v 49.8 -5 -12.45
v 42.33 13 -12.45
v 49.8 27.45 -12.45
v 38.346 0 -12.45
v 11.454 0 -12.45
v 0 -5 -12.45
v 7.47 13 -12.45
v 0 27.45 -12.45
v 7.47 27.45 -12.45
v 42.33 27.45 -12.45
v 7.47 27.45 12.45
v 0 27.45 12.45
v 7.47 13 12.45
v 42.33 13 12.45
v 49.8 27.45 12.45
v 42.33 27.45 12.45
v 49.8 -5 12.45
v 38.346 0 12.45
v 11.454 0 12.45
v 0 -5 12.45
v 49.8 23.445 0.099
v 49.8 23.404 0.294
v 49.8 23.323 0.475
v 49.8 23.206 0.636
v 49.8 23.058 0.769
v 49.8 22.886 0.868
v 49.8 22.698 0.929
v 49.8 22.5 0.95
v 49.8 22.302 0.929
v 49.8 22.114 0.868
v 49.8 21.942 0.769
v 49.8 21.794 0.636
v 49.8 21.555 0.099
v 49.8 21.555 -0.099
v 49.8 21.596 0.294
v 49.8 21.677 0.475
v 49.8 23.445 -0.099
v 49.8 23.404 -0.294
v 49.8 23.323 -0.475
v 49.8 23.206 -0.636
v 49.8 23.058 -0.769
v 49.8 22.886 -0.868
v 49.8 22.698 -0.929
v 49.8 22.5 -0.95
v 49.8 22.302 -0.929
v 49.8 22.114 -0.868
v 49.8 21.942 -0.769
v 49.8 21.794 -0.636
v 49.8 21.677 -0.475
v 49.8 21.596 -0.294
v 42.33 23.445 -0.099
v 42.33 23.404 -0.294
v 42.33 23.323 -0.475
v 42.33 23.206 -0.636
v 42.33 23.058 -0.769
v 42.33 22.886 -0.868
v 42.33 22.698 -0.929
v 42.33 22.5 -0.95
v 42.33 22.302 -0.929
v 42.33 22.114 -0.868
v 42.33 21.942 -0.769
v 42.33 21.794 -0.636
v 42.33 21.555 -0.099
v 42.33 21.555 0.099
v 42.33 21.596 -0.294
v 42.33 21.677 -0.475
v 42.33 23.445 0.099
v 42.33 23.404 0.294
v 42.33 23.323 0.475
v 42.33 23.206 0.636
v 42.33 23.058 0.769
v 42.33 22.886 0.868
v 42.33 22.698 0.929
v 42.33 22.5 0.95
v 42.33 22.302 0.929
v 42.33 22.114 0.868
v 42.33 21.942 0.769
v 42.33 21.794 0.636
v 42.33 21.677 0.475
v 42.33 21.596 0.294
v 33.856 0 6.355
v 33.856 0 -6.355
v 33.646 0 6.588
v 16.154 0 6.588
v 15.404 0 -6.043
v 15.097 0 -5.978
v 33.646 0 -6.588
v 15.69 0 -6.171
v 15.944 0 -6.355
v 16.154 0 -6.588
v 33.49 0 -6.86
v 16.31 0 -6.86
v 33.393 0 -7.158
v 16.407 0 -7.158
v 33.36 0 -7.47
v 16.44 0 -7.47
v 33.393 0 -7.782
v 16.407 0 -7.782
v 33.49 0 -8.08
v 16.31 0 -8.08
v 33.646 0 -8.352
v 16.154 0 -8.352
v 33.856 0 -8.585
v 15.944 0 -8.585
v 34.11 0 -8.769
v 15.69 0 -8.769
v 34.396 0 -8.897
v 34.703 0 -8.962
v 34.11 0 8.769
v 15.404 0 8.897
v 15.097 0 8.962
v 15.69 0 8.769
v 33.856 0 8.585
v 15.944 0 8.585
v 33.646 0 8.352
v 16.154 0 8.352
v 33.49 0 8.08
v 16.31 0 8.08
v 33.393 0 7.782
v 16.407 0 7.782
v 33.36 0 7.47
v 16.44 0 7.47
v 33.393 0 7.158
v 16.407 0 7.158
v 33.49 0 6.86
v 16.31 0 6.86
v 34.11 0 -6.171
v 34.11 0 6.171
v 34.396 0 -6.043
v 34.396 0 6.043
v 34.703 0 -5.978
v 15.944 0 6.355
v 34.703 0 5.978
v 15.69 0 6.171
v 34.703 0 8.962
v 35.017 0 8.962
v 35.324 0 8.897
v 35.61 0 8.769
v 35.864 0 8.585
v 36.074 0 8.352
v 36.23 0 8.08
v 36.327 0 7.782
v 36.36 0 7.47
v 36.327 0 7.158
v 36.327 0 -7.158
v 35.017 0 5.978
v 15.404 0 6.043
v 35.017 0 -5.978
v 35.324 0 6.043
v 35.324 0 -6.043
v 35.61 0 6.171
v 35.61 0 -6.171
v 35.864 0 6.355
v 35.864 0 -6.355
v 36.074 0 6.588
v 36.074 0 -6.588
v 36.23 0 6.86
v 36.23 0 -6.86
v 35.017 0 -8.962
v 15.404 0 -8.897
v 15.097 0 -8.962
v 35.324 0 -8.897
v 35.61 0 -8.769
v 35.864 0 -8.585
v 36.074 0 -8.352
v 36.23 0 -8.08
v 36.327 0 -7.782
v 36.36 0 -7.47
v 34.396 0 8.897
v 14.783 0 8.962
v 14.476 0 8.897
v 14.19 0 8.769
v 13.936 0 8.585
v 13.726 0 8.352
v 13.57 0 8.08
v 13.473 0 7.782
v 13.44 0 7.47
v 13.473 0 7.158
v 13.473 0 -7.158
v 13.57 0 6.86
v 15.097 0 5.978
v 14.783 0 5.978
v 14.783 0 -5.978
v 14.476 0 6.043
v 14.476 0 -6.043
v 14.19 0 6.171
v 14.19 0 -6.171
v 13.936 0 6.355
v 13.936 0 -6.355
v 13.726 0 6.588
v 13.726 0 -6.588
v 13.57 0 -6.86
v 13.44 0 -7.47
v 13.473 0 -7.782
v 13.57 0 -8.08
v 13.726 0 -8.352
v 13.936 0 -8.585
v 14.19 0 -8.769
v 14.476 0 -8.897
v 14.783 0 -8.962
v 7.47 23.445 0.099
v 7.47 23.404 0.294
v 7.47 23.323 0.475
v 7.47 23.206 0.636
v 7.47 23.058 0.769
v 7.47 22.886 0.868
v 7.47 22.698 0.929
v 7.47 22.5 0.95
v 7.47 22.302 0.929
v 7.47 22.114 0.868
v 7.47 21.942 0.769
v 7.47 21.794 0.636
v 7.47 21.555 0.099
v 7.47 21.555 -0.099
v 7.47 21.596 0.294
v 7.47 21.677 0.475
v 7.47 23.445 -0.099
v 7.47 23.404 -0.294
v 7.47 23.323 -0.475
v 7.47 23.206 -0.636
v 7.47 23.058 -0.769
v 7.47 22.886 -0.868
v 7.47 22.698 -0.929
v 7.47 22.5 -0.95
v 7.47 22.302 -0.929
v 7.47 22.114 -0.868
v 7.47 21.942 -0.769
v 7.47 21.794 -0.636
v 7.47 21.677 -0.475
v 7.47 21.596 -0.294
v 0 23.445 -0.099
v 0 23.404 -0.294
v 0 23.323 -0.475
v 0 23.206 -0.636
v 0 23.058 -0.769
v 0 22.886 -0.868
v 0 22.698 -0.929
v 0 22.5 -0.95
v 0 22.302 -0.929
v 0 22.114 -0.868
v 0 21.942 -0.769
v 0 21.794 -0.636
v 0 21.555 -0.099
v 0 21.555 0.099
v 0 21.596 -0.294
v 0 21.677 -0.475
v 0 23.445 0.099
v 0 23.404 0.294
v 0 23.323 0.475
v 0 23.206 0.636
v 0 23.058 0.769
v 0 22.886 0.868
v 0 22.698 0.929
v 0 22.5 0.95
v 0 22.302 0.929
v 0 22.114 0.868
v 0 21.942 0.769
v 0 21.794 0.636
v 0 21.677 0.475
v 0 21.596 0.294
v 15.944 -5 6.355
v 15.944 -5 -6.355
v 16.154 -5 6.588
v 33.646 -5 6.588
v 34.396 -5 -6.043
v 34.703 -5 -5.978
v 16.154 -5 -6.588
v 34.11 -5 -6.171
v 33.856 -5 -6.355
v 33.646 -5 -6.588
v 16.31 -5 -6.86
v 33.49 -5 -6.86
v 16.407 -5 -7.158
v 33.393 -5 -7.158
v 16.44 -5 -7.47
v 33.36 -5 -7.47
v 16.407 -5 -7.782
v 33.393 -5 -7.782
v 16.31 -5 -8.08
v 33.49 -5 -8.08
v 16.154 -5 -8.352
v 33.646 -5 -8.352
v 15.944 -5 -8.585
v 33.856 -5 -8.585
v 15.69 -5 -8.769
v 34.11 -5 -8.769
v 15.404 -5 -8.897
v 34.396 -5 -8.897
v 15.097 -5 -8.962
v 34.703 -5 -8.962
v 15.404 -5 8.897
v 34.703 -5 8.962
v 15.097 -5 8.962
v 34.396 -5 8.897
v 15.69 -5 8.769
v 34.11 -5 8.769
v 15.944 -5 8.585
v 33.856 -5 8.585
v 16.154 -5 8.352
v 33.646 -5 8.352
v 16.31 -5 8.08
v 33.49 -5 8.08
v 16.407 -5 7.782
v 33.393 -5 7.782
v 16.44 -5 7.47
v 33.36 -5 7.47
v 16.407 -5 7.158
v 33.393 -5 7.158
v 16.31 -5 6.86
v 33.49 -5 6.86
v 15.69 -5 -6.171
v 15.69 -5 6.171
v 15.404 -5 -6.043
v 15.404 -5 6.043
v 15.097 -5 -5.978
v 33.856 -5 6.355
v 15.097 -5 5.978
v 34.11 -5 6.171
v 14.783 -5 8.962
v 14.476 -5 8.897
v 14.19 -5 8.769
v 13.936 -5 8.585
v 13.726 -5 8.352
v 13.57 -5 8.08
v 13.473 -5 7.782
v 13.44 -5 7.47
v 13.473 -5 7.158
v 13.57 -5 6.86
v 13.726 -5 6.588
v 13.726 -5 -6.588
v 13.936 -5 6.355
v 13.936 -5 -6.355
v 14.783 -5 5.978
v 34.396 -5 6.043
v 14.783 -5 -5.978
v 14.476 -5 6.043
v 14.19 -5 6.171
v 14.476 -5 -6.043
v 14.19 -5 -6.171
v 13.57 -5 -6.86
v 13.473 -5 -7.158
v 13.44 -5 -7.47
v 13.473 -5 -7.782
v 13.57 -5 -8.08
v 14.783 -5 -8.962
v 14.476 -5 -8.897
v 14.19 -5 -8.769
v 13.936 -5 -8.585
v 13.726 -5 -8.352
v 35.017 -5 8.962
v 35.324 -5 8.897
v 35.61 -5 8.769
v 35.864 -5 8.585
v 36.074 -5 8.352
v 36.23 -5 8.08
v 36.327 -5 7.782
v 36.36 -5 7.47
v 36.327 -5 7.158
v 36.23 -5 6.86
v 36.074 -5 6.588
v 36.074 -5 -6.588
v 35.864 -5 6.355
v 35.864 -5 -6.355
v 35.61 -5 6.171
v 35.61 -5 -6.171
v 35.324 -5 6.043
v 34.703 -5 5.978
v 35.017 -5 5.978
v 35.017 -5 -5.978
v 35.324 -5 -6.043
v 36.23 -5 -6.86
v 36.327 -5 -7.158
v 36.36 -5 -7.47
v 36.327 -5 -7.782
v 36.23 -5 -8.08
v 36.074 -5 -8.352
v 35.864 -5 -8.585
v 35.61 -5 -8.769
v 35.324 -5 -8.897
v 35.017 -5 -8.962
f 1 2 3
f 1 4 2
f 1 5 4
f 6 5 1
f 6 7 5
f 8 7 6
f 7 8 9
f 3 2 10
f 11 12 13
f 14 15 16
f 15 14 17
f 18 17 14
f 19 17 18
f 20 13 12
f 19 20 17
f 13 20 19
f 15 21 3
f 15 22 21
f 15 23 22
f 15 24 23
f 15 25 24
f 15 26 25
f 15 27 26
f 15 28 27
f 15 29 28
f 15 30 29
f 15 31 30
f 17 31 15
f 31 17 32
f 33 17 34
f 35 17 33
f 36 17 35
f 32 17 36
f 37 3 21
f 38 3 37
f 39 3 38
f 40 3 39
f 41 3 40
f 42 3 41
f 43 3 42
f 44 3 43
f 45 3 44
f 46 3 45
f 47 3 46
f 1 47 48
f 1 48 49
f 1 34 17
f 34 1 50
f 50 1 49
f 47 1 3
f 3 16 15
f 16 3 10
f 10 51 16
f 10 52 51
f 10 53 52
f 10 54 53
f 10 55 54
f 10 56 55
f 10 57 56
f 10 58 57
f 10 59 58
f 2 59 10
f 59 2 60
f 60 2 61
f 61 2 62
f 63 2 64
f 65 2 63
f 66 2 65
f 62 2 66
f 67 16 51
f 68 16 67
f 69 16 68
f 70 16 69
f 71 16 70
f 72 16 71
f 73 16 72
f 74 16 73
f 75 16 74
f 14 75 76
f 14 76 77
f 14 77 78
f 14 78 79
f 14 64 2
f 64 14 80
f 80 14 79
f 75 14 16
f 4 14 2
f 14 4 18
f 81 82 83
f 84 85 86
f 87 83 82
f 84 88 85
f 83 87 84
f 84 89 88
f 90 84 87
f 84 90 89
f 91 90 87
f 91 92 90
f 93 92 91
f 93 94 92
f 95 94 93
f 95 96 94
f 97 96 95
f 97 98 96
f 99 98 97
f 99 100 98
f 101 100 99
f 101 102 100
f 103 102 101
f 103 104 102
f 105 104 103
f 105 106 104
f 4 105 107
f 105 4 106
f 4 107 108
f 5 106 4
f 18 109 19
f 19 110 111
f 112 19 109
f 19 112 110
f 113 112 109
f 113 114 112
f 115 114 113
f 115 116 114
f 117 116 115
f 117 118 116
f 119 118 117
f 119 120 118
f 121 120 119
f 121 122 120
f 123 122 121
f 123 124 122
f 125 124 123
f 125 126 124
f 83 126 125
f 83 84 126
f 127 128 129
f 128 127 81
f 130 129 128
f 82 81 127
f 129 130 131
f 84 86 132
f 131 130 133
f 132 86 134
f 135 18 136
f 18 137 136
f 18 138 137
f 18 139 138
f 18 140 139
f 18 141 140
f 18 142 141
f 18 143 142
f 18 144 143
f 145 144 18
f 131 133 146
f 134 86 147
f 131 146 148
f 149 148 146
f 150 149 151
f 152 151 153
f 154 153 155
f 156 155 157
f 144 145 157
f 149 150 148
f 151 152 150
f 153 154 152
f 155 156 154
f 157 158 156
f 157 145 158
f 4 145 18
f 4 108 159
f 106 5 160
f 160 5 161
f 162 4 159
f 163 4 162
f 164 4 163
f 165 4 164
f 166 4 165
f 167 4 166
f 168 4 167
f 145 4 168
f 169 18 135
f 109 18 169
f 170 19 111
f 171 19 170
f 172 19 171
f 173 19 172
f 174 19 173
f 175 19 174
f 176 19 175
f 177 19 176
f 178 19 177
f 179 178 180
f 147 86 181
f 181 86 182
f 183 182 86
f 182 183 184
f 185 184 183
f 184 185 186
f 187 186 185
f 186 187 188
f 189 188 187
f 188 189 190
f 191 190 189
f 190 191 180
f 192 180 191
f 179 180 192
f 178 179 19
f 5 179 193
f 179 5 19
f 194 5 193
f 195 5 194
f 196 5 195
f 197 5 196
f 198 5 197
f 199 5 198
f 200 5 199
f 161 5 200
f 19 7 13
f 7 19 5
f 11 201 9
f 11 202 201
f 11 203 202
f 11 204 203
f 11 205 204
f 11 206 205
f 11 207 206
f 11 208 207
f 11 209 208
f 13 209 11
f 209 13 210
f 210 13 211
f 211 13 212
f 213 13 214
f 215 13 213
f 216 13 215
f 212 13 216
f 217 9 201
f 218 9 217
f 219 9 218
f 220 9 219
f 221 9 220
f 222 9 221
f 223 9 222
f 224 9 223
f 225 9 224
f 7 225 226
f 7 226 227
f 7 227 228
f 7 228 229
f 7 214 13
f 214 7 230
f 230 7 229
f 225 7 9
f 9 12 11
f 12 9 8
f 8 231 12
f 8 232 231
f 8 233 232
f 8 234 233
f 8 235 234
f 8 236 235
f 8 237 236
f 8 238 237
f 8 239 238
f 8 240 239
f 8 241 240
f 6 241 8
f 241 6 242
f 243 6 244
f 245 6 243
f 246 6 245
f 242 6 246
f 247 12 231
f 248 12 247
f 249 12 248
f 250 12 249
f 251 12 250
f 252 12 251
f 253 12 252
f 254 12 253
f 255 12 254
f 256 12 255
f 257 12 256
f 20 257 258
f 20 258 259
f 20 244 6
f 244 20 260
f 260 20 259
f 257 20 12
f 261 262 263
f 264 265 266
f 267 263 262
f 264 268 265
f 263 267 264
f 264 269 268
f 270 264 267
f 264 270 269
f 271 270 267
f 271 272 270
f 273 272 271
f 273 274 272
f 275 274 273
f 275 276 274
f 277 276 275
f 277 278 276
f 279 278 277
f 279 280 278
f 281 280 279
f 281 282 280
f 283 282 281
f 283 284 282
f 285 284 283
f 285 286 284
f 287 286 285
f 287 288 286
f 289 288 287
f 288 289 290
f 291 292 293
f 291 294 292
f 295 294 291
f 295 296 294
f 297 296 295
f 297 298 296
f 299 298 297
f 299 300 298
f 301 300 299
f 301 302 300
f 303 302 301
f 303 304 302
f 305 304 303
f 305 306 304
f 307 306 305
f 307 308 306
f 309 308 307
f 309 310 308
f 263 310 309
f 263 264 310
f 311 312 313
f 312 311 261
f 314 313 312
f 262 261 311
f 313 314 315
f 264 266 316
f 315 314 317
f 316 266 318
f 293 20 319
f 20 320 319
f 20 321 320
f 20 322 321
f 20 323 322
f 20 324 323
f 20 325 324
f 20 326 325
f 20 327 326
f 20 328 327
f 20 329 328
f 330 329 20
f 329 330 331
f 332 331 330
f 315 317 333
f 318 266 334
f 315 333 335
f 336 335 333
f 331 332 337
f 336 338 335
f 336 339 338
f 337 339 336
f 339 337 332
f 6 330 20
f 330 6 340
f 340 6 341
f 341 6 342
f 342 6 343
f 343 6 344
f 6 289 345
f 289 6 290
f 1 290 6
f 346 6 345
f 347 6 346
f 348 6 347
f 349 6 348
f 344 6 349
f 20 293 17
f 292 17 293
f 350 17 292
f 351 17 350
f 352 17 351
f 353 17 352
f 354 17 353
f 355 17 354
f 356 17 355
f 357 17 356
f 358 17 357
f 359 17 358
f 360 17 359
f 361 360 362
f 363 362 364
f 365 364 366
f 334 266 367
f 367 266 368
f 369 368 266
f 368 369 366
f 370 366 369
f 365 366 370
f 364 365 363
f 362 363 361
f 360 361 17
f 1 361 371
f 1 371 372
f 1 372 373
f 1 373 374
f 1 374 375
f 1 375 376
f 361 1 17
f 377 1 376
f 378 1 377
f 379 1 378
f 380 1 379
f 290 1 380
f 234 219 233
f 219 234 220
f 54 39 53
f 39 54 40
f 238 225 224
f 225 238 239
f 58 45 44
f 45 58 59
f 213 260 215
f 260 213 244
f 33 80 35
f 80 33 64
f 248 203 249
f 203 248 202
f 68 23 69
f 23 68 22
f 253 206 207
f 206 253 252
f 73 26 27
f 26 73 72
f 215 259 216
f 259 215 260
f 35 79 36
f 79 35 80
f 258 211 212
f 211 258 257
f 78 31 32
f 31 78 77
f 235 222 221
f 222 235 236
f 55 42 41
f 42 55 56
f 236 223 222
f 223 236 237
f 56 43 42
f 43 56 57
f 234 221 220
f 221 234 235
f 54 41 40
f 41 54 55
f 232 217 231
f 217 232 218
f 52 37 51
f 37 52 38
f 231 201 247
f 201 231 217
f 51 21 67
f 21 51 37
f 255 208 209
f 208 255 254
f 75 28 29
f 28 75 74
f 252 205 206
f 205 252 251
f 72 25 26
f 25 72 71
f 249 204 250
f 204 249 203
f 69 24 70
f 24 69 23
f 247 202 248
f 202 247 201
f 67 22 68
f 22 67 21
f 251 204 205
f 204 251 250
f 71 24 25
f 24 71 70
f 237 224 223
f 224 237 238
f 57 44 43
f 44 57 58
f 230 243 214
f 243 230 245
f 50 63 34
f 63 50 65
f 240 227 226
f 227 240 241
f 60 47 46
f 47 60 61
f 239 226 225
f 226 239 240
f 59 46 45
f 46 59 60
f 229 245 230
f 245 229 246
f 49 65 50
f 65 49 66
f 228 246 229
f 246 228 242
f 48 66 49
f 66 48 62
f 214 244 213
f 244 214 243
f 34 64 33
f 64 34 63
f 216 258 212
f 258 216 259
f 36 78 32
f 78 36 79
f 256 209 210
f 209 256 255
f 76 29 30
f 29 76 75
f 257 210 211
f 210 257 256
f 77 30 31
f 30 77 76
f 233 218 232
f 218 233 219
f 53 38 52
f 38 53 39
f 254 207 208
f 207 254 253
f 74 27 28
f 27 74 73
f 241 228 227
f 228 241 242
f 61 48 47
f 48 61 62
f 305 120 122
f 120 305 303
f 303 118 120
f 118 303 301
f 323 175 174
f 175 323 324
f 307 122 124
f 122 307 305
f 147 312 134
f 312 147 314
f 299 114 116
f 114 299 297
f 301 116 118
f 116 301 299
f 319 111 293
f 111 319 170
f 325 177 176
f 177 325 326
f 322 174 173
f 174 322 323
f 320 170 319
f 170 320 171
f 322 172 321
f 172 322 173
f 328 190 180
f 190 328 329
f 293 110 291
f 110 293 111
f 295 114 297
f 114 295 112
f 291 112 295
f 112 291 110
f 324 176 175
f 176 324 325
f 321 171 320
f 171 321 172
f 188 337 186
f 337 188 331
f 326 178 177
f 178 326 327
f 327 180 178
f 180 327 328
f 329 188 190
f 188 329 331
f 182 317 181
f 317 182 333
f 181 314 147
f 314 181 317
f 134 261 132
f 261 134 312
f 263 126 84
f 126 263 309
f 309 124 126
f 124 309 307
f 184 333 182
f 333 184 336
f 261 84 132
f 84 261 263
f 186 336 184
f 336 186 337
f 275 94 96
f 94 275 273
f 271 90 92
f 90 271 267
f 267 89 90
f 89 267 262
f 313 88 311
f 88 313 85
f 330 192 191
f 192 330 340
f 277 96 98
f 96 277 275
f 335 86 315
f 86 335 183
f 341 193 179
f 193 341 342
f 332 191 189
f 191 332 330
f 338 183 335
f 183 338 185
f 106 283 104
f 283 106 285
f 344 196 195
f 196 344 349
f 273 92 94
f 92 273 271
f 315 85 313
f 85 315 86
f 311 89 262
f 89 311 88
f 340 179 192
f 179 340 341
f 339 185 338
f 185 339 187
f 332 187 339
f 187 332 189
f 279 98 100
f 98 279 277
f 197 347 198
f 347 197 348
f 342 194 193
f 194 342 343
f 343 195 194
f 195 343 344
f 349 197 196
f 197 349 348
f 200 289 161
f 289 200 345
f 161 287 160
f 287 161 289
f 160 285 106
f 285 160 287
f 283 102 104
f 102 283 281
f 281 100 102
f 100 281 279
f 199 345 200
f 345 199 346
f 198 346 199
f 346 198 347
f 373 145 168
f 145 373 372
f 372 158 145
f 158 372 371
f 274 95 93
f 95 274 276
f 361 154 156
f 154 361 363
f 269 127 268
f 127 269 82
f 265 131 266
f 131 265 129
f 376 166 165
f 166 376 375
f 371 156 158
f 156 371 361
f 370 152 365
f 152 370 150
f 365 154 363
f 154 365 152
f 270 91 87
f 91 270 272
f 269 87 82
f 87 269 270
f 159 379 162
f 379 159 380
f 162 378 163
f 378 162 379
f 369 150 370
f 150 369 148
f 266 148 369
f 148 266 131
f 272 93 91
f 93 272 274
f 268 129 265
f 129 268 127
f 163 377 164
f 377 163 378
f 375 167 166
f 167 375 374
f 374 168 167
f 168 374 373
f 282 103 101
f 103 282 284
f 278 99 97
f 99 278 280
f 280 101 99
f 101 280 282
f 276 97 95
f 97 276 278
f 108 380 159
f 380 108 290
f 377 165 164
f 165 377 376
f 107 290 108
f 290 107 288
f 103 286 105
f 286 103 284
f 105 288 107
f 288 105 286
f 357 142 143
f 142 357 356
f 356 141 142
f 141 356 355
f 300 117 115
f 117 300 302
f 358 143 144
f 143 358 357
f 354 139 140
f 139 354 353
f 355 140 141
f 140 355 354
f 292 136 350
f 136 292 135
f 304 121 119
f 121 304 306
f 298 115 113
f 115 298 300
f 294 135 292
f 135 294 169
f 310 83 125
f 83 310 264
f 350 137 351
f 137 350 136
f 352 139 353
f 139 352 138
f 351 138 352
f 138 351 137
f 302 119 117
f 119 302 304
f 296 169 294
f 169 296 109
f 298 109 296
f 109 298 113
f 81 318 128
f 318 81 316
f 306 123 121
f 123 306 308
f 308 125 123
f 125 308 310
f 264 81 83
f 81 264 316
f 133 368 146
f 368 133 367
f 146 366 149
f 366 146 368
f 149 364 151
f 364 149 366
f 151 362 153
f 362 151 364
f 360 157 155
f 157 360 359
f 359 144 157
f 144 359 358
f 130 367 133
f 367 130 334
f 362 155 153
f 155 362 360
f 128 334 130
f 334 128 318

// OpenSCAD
grid = 4.98;
ball_rad = 33/2;
axle_rad = 1.9/2;
grid_hole_diam = 3;

$fn = 30;

inf = 1e3;

ball_drop = ball_rad + 6;
extra_drop = axle_rad + 4;

depth = 5*grid;

module support() {
    polygon([
        [0,0],
        [2.3*grid, 0],
        [1.5*grid, 13],
        [1.5*grid, ball_drop+extra_drop],
        [0, ball_drop+extra_drop]
    ]);
}


module axle() {
    translate([-inf/2,ball_drop,0]) rotate([0, 90, 0]) cylinder(h=inf, r=axle_rad);
}



//translate([10*grid/2, ball_drop]) sphere(r=ball_rad);

difference() {

    translate([0,0,-depth/2]) linear_extrude(height=depth) {
        translate([0,-5]) square([10*grid, 5]);
        support();
        translate([10*grid, 0]) mirror() support();
    }
    axle();
    rotate([90,0,0]) translate([grid*3, 3*grid/2, -inf/2]) cylinder(h=inf, d=grid_hole_diam);
    rotate([90,0,0]) translate([grid*3, -3*grid/2, -inf/2]) cylinder(h=inf, d=grid_hole_diam);
    rotate([90,0,0]) translate([grid*7, -3*grid/2, -inf/2]) cylinder(h=inf, d=grid_hole_diam);
    rotate([90,0,0]) translate([grid*7, 3*grid/2, -inf/2]) cylinder(h=inf, d=grid_hole_diam);
}


//axle();
